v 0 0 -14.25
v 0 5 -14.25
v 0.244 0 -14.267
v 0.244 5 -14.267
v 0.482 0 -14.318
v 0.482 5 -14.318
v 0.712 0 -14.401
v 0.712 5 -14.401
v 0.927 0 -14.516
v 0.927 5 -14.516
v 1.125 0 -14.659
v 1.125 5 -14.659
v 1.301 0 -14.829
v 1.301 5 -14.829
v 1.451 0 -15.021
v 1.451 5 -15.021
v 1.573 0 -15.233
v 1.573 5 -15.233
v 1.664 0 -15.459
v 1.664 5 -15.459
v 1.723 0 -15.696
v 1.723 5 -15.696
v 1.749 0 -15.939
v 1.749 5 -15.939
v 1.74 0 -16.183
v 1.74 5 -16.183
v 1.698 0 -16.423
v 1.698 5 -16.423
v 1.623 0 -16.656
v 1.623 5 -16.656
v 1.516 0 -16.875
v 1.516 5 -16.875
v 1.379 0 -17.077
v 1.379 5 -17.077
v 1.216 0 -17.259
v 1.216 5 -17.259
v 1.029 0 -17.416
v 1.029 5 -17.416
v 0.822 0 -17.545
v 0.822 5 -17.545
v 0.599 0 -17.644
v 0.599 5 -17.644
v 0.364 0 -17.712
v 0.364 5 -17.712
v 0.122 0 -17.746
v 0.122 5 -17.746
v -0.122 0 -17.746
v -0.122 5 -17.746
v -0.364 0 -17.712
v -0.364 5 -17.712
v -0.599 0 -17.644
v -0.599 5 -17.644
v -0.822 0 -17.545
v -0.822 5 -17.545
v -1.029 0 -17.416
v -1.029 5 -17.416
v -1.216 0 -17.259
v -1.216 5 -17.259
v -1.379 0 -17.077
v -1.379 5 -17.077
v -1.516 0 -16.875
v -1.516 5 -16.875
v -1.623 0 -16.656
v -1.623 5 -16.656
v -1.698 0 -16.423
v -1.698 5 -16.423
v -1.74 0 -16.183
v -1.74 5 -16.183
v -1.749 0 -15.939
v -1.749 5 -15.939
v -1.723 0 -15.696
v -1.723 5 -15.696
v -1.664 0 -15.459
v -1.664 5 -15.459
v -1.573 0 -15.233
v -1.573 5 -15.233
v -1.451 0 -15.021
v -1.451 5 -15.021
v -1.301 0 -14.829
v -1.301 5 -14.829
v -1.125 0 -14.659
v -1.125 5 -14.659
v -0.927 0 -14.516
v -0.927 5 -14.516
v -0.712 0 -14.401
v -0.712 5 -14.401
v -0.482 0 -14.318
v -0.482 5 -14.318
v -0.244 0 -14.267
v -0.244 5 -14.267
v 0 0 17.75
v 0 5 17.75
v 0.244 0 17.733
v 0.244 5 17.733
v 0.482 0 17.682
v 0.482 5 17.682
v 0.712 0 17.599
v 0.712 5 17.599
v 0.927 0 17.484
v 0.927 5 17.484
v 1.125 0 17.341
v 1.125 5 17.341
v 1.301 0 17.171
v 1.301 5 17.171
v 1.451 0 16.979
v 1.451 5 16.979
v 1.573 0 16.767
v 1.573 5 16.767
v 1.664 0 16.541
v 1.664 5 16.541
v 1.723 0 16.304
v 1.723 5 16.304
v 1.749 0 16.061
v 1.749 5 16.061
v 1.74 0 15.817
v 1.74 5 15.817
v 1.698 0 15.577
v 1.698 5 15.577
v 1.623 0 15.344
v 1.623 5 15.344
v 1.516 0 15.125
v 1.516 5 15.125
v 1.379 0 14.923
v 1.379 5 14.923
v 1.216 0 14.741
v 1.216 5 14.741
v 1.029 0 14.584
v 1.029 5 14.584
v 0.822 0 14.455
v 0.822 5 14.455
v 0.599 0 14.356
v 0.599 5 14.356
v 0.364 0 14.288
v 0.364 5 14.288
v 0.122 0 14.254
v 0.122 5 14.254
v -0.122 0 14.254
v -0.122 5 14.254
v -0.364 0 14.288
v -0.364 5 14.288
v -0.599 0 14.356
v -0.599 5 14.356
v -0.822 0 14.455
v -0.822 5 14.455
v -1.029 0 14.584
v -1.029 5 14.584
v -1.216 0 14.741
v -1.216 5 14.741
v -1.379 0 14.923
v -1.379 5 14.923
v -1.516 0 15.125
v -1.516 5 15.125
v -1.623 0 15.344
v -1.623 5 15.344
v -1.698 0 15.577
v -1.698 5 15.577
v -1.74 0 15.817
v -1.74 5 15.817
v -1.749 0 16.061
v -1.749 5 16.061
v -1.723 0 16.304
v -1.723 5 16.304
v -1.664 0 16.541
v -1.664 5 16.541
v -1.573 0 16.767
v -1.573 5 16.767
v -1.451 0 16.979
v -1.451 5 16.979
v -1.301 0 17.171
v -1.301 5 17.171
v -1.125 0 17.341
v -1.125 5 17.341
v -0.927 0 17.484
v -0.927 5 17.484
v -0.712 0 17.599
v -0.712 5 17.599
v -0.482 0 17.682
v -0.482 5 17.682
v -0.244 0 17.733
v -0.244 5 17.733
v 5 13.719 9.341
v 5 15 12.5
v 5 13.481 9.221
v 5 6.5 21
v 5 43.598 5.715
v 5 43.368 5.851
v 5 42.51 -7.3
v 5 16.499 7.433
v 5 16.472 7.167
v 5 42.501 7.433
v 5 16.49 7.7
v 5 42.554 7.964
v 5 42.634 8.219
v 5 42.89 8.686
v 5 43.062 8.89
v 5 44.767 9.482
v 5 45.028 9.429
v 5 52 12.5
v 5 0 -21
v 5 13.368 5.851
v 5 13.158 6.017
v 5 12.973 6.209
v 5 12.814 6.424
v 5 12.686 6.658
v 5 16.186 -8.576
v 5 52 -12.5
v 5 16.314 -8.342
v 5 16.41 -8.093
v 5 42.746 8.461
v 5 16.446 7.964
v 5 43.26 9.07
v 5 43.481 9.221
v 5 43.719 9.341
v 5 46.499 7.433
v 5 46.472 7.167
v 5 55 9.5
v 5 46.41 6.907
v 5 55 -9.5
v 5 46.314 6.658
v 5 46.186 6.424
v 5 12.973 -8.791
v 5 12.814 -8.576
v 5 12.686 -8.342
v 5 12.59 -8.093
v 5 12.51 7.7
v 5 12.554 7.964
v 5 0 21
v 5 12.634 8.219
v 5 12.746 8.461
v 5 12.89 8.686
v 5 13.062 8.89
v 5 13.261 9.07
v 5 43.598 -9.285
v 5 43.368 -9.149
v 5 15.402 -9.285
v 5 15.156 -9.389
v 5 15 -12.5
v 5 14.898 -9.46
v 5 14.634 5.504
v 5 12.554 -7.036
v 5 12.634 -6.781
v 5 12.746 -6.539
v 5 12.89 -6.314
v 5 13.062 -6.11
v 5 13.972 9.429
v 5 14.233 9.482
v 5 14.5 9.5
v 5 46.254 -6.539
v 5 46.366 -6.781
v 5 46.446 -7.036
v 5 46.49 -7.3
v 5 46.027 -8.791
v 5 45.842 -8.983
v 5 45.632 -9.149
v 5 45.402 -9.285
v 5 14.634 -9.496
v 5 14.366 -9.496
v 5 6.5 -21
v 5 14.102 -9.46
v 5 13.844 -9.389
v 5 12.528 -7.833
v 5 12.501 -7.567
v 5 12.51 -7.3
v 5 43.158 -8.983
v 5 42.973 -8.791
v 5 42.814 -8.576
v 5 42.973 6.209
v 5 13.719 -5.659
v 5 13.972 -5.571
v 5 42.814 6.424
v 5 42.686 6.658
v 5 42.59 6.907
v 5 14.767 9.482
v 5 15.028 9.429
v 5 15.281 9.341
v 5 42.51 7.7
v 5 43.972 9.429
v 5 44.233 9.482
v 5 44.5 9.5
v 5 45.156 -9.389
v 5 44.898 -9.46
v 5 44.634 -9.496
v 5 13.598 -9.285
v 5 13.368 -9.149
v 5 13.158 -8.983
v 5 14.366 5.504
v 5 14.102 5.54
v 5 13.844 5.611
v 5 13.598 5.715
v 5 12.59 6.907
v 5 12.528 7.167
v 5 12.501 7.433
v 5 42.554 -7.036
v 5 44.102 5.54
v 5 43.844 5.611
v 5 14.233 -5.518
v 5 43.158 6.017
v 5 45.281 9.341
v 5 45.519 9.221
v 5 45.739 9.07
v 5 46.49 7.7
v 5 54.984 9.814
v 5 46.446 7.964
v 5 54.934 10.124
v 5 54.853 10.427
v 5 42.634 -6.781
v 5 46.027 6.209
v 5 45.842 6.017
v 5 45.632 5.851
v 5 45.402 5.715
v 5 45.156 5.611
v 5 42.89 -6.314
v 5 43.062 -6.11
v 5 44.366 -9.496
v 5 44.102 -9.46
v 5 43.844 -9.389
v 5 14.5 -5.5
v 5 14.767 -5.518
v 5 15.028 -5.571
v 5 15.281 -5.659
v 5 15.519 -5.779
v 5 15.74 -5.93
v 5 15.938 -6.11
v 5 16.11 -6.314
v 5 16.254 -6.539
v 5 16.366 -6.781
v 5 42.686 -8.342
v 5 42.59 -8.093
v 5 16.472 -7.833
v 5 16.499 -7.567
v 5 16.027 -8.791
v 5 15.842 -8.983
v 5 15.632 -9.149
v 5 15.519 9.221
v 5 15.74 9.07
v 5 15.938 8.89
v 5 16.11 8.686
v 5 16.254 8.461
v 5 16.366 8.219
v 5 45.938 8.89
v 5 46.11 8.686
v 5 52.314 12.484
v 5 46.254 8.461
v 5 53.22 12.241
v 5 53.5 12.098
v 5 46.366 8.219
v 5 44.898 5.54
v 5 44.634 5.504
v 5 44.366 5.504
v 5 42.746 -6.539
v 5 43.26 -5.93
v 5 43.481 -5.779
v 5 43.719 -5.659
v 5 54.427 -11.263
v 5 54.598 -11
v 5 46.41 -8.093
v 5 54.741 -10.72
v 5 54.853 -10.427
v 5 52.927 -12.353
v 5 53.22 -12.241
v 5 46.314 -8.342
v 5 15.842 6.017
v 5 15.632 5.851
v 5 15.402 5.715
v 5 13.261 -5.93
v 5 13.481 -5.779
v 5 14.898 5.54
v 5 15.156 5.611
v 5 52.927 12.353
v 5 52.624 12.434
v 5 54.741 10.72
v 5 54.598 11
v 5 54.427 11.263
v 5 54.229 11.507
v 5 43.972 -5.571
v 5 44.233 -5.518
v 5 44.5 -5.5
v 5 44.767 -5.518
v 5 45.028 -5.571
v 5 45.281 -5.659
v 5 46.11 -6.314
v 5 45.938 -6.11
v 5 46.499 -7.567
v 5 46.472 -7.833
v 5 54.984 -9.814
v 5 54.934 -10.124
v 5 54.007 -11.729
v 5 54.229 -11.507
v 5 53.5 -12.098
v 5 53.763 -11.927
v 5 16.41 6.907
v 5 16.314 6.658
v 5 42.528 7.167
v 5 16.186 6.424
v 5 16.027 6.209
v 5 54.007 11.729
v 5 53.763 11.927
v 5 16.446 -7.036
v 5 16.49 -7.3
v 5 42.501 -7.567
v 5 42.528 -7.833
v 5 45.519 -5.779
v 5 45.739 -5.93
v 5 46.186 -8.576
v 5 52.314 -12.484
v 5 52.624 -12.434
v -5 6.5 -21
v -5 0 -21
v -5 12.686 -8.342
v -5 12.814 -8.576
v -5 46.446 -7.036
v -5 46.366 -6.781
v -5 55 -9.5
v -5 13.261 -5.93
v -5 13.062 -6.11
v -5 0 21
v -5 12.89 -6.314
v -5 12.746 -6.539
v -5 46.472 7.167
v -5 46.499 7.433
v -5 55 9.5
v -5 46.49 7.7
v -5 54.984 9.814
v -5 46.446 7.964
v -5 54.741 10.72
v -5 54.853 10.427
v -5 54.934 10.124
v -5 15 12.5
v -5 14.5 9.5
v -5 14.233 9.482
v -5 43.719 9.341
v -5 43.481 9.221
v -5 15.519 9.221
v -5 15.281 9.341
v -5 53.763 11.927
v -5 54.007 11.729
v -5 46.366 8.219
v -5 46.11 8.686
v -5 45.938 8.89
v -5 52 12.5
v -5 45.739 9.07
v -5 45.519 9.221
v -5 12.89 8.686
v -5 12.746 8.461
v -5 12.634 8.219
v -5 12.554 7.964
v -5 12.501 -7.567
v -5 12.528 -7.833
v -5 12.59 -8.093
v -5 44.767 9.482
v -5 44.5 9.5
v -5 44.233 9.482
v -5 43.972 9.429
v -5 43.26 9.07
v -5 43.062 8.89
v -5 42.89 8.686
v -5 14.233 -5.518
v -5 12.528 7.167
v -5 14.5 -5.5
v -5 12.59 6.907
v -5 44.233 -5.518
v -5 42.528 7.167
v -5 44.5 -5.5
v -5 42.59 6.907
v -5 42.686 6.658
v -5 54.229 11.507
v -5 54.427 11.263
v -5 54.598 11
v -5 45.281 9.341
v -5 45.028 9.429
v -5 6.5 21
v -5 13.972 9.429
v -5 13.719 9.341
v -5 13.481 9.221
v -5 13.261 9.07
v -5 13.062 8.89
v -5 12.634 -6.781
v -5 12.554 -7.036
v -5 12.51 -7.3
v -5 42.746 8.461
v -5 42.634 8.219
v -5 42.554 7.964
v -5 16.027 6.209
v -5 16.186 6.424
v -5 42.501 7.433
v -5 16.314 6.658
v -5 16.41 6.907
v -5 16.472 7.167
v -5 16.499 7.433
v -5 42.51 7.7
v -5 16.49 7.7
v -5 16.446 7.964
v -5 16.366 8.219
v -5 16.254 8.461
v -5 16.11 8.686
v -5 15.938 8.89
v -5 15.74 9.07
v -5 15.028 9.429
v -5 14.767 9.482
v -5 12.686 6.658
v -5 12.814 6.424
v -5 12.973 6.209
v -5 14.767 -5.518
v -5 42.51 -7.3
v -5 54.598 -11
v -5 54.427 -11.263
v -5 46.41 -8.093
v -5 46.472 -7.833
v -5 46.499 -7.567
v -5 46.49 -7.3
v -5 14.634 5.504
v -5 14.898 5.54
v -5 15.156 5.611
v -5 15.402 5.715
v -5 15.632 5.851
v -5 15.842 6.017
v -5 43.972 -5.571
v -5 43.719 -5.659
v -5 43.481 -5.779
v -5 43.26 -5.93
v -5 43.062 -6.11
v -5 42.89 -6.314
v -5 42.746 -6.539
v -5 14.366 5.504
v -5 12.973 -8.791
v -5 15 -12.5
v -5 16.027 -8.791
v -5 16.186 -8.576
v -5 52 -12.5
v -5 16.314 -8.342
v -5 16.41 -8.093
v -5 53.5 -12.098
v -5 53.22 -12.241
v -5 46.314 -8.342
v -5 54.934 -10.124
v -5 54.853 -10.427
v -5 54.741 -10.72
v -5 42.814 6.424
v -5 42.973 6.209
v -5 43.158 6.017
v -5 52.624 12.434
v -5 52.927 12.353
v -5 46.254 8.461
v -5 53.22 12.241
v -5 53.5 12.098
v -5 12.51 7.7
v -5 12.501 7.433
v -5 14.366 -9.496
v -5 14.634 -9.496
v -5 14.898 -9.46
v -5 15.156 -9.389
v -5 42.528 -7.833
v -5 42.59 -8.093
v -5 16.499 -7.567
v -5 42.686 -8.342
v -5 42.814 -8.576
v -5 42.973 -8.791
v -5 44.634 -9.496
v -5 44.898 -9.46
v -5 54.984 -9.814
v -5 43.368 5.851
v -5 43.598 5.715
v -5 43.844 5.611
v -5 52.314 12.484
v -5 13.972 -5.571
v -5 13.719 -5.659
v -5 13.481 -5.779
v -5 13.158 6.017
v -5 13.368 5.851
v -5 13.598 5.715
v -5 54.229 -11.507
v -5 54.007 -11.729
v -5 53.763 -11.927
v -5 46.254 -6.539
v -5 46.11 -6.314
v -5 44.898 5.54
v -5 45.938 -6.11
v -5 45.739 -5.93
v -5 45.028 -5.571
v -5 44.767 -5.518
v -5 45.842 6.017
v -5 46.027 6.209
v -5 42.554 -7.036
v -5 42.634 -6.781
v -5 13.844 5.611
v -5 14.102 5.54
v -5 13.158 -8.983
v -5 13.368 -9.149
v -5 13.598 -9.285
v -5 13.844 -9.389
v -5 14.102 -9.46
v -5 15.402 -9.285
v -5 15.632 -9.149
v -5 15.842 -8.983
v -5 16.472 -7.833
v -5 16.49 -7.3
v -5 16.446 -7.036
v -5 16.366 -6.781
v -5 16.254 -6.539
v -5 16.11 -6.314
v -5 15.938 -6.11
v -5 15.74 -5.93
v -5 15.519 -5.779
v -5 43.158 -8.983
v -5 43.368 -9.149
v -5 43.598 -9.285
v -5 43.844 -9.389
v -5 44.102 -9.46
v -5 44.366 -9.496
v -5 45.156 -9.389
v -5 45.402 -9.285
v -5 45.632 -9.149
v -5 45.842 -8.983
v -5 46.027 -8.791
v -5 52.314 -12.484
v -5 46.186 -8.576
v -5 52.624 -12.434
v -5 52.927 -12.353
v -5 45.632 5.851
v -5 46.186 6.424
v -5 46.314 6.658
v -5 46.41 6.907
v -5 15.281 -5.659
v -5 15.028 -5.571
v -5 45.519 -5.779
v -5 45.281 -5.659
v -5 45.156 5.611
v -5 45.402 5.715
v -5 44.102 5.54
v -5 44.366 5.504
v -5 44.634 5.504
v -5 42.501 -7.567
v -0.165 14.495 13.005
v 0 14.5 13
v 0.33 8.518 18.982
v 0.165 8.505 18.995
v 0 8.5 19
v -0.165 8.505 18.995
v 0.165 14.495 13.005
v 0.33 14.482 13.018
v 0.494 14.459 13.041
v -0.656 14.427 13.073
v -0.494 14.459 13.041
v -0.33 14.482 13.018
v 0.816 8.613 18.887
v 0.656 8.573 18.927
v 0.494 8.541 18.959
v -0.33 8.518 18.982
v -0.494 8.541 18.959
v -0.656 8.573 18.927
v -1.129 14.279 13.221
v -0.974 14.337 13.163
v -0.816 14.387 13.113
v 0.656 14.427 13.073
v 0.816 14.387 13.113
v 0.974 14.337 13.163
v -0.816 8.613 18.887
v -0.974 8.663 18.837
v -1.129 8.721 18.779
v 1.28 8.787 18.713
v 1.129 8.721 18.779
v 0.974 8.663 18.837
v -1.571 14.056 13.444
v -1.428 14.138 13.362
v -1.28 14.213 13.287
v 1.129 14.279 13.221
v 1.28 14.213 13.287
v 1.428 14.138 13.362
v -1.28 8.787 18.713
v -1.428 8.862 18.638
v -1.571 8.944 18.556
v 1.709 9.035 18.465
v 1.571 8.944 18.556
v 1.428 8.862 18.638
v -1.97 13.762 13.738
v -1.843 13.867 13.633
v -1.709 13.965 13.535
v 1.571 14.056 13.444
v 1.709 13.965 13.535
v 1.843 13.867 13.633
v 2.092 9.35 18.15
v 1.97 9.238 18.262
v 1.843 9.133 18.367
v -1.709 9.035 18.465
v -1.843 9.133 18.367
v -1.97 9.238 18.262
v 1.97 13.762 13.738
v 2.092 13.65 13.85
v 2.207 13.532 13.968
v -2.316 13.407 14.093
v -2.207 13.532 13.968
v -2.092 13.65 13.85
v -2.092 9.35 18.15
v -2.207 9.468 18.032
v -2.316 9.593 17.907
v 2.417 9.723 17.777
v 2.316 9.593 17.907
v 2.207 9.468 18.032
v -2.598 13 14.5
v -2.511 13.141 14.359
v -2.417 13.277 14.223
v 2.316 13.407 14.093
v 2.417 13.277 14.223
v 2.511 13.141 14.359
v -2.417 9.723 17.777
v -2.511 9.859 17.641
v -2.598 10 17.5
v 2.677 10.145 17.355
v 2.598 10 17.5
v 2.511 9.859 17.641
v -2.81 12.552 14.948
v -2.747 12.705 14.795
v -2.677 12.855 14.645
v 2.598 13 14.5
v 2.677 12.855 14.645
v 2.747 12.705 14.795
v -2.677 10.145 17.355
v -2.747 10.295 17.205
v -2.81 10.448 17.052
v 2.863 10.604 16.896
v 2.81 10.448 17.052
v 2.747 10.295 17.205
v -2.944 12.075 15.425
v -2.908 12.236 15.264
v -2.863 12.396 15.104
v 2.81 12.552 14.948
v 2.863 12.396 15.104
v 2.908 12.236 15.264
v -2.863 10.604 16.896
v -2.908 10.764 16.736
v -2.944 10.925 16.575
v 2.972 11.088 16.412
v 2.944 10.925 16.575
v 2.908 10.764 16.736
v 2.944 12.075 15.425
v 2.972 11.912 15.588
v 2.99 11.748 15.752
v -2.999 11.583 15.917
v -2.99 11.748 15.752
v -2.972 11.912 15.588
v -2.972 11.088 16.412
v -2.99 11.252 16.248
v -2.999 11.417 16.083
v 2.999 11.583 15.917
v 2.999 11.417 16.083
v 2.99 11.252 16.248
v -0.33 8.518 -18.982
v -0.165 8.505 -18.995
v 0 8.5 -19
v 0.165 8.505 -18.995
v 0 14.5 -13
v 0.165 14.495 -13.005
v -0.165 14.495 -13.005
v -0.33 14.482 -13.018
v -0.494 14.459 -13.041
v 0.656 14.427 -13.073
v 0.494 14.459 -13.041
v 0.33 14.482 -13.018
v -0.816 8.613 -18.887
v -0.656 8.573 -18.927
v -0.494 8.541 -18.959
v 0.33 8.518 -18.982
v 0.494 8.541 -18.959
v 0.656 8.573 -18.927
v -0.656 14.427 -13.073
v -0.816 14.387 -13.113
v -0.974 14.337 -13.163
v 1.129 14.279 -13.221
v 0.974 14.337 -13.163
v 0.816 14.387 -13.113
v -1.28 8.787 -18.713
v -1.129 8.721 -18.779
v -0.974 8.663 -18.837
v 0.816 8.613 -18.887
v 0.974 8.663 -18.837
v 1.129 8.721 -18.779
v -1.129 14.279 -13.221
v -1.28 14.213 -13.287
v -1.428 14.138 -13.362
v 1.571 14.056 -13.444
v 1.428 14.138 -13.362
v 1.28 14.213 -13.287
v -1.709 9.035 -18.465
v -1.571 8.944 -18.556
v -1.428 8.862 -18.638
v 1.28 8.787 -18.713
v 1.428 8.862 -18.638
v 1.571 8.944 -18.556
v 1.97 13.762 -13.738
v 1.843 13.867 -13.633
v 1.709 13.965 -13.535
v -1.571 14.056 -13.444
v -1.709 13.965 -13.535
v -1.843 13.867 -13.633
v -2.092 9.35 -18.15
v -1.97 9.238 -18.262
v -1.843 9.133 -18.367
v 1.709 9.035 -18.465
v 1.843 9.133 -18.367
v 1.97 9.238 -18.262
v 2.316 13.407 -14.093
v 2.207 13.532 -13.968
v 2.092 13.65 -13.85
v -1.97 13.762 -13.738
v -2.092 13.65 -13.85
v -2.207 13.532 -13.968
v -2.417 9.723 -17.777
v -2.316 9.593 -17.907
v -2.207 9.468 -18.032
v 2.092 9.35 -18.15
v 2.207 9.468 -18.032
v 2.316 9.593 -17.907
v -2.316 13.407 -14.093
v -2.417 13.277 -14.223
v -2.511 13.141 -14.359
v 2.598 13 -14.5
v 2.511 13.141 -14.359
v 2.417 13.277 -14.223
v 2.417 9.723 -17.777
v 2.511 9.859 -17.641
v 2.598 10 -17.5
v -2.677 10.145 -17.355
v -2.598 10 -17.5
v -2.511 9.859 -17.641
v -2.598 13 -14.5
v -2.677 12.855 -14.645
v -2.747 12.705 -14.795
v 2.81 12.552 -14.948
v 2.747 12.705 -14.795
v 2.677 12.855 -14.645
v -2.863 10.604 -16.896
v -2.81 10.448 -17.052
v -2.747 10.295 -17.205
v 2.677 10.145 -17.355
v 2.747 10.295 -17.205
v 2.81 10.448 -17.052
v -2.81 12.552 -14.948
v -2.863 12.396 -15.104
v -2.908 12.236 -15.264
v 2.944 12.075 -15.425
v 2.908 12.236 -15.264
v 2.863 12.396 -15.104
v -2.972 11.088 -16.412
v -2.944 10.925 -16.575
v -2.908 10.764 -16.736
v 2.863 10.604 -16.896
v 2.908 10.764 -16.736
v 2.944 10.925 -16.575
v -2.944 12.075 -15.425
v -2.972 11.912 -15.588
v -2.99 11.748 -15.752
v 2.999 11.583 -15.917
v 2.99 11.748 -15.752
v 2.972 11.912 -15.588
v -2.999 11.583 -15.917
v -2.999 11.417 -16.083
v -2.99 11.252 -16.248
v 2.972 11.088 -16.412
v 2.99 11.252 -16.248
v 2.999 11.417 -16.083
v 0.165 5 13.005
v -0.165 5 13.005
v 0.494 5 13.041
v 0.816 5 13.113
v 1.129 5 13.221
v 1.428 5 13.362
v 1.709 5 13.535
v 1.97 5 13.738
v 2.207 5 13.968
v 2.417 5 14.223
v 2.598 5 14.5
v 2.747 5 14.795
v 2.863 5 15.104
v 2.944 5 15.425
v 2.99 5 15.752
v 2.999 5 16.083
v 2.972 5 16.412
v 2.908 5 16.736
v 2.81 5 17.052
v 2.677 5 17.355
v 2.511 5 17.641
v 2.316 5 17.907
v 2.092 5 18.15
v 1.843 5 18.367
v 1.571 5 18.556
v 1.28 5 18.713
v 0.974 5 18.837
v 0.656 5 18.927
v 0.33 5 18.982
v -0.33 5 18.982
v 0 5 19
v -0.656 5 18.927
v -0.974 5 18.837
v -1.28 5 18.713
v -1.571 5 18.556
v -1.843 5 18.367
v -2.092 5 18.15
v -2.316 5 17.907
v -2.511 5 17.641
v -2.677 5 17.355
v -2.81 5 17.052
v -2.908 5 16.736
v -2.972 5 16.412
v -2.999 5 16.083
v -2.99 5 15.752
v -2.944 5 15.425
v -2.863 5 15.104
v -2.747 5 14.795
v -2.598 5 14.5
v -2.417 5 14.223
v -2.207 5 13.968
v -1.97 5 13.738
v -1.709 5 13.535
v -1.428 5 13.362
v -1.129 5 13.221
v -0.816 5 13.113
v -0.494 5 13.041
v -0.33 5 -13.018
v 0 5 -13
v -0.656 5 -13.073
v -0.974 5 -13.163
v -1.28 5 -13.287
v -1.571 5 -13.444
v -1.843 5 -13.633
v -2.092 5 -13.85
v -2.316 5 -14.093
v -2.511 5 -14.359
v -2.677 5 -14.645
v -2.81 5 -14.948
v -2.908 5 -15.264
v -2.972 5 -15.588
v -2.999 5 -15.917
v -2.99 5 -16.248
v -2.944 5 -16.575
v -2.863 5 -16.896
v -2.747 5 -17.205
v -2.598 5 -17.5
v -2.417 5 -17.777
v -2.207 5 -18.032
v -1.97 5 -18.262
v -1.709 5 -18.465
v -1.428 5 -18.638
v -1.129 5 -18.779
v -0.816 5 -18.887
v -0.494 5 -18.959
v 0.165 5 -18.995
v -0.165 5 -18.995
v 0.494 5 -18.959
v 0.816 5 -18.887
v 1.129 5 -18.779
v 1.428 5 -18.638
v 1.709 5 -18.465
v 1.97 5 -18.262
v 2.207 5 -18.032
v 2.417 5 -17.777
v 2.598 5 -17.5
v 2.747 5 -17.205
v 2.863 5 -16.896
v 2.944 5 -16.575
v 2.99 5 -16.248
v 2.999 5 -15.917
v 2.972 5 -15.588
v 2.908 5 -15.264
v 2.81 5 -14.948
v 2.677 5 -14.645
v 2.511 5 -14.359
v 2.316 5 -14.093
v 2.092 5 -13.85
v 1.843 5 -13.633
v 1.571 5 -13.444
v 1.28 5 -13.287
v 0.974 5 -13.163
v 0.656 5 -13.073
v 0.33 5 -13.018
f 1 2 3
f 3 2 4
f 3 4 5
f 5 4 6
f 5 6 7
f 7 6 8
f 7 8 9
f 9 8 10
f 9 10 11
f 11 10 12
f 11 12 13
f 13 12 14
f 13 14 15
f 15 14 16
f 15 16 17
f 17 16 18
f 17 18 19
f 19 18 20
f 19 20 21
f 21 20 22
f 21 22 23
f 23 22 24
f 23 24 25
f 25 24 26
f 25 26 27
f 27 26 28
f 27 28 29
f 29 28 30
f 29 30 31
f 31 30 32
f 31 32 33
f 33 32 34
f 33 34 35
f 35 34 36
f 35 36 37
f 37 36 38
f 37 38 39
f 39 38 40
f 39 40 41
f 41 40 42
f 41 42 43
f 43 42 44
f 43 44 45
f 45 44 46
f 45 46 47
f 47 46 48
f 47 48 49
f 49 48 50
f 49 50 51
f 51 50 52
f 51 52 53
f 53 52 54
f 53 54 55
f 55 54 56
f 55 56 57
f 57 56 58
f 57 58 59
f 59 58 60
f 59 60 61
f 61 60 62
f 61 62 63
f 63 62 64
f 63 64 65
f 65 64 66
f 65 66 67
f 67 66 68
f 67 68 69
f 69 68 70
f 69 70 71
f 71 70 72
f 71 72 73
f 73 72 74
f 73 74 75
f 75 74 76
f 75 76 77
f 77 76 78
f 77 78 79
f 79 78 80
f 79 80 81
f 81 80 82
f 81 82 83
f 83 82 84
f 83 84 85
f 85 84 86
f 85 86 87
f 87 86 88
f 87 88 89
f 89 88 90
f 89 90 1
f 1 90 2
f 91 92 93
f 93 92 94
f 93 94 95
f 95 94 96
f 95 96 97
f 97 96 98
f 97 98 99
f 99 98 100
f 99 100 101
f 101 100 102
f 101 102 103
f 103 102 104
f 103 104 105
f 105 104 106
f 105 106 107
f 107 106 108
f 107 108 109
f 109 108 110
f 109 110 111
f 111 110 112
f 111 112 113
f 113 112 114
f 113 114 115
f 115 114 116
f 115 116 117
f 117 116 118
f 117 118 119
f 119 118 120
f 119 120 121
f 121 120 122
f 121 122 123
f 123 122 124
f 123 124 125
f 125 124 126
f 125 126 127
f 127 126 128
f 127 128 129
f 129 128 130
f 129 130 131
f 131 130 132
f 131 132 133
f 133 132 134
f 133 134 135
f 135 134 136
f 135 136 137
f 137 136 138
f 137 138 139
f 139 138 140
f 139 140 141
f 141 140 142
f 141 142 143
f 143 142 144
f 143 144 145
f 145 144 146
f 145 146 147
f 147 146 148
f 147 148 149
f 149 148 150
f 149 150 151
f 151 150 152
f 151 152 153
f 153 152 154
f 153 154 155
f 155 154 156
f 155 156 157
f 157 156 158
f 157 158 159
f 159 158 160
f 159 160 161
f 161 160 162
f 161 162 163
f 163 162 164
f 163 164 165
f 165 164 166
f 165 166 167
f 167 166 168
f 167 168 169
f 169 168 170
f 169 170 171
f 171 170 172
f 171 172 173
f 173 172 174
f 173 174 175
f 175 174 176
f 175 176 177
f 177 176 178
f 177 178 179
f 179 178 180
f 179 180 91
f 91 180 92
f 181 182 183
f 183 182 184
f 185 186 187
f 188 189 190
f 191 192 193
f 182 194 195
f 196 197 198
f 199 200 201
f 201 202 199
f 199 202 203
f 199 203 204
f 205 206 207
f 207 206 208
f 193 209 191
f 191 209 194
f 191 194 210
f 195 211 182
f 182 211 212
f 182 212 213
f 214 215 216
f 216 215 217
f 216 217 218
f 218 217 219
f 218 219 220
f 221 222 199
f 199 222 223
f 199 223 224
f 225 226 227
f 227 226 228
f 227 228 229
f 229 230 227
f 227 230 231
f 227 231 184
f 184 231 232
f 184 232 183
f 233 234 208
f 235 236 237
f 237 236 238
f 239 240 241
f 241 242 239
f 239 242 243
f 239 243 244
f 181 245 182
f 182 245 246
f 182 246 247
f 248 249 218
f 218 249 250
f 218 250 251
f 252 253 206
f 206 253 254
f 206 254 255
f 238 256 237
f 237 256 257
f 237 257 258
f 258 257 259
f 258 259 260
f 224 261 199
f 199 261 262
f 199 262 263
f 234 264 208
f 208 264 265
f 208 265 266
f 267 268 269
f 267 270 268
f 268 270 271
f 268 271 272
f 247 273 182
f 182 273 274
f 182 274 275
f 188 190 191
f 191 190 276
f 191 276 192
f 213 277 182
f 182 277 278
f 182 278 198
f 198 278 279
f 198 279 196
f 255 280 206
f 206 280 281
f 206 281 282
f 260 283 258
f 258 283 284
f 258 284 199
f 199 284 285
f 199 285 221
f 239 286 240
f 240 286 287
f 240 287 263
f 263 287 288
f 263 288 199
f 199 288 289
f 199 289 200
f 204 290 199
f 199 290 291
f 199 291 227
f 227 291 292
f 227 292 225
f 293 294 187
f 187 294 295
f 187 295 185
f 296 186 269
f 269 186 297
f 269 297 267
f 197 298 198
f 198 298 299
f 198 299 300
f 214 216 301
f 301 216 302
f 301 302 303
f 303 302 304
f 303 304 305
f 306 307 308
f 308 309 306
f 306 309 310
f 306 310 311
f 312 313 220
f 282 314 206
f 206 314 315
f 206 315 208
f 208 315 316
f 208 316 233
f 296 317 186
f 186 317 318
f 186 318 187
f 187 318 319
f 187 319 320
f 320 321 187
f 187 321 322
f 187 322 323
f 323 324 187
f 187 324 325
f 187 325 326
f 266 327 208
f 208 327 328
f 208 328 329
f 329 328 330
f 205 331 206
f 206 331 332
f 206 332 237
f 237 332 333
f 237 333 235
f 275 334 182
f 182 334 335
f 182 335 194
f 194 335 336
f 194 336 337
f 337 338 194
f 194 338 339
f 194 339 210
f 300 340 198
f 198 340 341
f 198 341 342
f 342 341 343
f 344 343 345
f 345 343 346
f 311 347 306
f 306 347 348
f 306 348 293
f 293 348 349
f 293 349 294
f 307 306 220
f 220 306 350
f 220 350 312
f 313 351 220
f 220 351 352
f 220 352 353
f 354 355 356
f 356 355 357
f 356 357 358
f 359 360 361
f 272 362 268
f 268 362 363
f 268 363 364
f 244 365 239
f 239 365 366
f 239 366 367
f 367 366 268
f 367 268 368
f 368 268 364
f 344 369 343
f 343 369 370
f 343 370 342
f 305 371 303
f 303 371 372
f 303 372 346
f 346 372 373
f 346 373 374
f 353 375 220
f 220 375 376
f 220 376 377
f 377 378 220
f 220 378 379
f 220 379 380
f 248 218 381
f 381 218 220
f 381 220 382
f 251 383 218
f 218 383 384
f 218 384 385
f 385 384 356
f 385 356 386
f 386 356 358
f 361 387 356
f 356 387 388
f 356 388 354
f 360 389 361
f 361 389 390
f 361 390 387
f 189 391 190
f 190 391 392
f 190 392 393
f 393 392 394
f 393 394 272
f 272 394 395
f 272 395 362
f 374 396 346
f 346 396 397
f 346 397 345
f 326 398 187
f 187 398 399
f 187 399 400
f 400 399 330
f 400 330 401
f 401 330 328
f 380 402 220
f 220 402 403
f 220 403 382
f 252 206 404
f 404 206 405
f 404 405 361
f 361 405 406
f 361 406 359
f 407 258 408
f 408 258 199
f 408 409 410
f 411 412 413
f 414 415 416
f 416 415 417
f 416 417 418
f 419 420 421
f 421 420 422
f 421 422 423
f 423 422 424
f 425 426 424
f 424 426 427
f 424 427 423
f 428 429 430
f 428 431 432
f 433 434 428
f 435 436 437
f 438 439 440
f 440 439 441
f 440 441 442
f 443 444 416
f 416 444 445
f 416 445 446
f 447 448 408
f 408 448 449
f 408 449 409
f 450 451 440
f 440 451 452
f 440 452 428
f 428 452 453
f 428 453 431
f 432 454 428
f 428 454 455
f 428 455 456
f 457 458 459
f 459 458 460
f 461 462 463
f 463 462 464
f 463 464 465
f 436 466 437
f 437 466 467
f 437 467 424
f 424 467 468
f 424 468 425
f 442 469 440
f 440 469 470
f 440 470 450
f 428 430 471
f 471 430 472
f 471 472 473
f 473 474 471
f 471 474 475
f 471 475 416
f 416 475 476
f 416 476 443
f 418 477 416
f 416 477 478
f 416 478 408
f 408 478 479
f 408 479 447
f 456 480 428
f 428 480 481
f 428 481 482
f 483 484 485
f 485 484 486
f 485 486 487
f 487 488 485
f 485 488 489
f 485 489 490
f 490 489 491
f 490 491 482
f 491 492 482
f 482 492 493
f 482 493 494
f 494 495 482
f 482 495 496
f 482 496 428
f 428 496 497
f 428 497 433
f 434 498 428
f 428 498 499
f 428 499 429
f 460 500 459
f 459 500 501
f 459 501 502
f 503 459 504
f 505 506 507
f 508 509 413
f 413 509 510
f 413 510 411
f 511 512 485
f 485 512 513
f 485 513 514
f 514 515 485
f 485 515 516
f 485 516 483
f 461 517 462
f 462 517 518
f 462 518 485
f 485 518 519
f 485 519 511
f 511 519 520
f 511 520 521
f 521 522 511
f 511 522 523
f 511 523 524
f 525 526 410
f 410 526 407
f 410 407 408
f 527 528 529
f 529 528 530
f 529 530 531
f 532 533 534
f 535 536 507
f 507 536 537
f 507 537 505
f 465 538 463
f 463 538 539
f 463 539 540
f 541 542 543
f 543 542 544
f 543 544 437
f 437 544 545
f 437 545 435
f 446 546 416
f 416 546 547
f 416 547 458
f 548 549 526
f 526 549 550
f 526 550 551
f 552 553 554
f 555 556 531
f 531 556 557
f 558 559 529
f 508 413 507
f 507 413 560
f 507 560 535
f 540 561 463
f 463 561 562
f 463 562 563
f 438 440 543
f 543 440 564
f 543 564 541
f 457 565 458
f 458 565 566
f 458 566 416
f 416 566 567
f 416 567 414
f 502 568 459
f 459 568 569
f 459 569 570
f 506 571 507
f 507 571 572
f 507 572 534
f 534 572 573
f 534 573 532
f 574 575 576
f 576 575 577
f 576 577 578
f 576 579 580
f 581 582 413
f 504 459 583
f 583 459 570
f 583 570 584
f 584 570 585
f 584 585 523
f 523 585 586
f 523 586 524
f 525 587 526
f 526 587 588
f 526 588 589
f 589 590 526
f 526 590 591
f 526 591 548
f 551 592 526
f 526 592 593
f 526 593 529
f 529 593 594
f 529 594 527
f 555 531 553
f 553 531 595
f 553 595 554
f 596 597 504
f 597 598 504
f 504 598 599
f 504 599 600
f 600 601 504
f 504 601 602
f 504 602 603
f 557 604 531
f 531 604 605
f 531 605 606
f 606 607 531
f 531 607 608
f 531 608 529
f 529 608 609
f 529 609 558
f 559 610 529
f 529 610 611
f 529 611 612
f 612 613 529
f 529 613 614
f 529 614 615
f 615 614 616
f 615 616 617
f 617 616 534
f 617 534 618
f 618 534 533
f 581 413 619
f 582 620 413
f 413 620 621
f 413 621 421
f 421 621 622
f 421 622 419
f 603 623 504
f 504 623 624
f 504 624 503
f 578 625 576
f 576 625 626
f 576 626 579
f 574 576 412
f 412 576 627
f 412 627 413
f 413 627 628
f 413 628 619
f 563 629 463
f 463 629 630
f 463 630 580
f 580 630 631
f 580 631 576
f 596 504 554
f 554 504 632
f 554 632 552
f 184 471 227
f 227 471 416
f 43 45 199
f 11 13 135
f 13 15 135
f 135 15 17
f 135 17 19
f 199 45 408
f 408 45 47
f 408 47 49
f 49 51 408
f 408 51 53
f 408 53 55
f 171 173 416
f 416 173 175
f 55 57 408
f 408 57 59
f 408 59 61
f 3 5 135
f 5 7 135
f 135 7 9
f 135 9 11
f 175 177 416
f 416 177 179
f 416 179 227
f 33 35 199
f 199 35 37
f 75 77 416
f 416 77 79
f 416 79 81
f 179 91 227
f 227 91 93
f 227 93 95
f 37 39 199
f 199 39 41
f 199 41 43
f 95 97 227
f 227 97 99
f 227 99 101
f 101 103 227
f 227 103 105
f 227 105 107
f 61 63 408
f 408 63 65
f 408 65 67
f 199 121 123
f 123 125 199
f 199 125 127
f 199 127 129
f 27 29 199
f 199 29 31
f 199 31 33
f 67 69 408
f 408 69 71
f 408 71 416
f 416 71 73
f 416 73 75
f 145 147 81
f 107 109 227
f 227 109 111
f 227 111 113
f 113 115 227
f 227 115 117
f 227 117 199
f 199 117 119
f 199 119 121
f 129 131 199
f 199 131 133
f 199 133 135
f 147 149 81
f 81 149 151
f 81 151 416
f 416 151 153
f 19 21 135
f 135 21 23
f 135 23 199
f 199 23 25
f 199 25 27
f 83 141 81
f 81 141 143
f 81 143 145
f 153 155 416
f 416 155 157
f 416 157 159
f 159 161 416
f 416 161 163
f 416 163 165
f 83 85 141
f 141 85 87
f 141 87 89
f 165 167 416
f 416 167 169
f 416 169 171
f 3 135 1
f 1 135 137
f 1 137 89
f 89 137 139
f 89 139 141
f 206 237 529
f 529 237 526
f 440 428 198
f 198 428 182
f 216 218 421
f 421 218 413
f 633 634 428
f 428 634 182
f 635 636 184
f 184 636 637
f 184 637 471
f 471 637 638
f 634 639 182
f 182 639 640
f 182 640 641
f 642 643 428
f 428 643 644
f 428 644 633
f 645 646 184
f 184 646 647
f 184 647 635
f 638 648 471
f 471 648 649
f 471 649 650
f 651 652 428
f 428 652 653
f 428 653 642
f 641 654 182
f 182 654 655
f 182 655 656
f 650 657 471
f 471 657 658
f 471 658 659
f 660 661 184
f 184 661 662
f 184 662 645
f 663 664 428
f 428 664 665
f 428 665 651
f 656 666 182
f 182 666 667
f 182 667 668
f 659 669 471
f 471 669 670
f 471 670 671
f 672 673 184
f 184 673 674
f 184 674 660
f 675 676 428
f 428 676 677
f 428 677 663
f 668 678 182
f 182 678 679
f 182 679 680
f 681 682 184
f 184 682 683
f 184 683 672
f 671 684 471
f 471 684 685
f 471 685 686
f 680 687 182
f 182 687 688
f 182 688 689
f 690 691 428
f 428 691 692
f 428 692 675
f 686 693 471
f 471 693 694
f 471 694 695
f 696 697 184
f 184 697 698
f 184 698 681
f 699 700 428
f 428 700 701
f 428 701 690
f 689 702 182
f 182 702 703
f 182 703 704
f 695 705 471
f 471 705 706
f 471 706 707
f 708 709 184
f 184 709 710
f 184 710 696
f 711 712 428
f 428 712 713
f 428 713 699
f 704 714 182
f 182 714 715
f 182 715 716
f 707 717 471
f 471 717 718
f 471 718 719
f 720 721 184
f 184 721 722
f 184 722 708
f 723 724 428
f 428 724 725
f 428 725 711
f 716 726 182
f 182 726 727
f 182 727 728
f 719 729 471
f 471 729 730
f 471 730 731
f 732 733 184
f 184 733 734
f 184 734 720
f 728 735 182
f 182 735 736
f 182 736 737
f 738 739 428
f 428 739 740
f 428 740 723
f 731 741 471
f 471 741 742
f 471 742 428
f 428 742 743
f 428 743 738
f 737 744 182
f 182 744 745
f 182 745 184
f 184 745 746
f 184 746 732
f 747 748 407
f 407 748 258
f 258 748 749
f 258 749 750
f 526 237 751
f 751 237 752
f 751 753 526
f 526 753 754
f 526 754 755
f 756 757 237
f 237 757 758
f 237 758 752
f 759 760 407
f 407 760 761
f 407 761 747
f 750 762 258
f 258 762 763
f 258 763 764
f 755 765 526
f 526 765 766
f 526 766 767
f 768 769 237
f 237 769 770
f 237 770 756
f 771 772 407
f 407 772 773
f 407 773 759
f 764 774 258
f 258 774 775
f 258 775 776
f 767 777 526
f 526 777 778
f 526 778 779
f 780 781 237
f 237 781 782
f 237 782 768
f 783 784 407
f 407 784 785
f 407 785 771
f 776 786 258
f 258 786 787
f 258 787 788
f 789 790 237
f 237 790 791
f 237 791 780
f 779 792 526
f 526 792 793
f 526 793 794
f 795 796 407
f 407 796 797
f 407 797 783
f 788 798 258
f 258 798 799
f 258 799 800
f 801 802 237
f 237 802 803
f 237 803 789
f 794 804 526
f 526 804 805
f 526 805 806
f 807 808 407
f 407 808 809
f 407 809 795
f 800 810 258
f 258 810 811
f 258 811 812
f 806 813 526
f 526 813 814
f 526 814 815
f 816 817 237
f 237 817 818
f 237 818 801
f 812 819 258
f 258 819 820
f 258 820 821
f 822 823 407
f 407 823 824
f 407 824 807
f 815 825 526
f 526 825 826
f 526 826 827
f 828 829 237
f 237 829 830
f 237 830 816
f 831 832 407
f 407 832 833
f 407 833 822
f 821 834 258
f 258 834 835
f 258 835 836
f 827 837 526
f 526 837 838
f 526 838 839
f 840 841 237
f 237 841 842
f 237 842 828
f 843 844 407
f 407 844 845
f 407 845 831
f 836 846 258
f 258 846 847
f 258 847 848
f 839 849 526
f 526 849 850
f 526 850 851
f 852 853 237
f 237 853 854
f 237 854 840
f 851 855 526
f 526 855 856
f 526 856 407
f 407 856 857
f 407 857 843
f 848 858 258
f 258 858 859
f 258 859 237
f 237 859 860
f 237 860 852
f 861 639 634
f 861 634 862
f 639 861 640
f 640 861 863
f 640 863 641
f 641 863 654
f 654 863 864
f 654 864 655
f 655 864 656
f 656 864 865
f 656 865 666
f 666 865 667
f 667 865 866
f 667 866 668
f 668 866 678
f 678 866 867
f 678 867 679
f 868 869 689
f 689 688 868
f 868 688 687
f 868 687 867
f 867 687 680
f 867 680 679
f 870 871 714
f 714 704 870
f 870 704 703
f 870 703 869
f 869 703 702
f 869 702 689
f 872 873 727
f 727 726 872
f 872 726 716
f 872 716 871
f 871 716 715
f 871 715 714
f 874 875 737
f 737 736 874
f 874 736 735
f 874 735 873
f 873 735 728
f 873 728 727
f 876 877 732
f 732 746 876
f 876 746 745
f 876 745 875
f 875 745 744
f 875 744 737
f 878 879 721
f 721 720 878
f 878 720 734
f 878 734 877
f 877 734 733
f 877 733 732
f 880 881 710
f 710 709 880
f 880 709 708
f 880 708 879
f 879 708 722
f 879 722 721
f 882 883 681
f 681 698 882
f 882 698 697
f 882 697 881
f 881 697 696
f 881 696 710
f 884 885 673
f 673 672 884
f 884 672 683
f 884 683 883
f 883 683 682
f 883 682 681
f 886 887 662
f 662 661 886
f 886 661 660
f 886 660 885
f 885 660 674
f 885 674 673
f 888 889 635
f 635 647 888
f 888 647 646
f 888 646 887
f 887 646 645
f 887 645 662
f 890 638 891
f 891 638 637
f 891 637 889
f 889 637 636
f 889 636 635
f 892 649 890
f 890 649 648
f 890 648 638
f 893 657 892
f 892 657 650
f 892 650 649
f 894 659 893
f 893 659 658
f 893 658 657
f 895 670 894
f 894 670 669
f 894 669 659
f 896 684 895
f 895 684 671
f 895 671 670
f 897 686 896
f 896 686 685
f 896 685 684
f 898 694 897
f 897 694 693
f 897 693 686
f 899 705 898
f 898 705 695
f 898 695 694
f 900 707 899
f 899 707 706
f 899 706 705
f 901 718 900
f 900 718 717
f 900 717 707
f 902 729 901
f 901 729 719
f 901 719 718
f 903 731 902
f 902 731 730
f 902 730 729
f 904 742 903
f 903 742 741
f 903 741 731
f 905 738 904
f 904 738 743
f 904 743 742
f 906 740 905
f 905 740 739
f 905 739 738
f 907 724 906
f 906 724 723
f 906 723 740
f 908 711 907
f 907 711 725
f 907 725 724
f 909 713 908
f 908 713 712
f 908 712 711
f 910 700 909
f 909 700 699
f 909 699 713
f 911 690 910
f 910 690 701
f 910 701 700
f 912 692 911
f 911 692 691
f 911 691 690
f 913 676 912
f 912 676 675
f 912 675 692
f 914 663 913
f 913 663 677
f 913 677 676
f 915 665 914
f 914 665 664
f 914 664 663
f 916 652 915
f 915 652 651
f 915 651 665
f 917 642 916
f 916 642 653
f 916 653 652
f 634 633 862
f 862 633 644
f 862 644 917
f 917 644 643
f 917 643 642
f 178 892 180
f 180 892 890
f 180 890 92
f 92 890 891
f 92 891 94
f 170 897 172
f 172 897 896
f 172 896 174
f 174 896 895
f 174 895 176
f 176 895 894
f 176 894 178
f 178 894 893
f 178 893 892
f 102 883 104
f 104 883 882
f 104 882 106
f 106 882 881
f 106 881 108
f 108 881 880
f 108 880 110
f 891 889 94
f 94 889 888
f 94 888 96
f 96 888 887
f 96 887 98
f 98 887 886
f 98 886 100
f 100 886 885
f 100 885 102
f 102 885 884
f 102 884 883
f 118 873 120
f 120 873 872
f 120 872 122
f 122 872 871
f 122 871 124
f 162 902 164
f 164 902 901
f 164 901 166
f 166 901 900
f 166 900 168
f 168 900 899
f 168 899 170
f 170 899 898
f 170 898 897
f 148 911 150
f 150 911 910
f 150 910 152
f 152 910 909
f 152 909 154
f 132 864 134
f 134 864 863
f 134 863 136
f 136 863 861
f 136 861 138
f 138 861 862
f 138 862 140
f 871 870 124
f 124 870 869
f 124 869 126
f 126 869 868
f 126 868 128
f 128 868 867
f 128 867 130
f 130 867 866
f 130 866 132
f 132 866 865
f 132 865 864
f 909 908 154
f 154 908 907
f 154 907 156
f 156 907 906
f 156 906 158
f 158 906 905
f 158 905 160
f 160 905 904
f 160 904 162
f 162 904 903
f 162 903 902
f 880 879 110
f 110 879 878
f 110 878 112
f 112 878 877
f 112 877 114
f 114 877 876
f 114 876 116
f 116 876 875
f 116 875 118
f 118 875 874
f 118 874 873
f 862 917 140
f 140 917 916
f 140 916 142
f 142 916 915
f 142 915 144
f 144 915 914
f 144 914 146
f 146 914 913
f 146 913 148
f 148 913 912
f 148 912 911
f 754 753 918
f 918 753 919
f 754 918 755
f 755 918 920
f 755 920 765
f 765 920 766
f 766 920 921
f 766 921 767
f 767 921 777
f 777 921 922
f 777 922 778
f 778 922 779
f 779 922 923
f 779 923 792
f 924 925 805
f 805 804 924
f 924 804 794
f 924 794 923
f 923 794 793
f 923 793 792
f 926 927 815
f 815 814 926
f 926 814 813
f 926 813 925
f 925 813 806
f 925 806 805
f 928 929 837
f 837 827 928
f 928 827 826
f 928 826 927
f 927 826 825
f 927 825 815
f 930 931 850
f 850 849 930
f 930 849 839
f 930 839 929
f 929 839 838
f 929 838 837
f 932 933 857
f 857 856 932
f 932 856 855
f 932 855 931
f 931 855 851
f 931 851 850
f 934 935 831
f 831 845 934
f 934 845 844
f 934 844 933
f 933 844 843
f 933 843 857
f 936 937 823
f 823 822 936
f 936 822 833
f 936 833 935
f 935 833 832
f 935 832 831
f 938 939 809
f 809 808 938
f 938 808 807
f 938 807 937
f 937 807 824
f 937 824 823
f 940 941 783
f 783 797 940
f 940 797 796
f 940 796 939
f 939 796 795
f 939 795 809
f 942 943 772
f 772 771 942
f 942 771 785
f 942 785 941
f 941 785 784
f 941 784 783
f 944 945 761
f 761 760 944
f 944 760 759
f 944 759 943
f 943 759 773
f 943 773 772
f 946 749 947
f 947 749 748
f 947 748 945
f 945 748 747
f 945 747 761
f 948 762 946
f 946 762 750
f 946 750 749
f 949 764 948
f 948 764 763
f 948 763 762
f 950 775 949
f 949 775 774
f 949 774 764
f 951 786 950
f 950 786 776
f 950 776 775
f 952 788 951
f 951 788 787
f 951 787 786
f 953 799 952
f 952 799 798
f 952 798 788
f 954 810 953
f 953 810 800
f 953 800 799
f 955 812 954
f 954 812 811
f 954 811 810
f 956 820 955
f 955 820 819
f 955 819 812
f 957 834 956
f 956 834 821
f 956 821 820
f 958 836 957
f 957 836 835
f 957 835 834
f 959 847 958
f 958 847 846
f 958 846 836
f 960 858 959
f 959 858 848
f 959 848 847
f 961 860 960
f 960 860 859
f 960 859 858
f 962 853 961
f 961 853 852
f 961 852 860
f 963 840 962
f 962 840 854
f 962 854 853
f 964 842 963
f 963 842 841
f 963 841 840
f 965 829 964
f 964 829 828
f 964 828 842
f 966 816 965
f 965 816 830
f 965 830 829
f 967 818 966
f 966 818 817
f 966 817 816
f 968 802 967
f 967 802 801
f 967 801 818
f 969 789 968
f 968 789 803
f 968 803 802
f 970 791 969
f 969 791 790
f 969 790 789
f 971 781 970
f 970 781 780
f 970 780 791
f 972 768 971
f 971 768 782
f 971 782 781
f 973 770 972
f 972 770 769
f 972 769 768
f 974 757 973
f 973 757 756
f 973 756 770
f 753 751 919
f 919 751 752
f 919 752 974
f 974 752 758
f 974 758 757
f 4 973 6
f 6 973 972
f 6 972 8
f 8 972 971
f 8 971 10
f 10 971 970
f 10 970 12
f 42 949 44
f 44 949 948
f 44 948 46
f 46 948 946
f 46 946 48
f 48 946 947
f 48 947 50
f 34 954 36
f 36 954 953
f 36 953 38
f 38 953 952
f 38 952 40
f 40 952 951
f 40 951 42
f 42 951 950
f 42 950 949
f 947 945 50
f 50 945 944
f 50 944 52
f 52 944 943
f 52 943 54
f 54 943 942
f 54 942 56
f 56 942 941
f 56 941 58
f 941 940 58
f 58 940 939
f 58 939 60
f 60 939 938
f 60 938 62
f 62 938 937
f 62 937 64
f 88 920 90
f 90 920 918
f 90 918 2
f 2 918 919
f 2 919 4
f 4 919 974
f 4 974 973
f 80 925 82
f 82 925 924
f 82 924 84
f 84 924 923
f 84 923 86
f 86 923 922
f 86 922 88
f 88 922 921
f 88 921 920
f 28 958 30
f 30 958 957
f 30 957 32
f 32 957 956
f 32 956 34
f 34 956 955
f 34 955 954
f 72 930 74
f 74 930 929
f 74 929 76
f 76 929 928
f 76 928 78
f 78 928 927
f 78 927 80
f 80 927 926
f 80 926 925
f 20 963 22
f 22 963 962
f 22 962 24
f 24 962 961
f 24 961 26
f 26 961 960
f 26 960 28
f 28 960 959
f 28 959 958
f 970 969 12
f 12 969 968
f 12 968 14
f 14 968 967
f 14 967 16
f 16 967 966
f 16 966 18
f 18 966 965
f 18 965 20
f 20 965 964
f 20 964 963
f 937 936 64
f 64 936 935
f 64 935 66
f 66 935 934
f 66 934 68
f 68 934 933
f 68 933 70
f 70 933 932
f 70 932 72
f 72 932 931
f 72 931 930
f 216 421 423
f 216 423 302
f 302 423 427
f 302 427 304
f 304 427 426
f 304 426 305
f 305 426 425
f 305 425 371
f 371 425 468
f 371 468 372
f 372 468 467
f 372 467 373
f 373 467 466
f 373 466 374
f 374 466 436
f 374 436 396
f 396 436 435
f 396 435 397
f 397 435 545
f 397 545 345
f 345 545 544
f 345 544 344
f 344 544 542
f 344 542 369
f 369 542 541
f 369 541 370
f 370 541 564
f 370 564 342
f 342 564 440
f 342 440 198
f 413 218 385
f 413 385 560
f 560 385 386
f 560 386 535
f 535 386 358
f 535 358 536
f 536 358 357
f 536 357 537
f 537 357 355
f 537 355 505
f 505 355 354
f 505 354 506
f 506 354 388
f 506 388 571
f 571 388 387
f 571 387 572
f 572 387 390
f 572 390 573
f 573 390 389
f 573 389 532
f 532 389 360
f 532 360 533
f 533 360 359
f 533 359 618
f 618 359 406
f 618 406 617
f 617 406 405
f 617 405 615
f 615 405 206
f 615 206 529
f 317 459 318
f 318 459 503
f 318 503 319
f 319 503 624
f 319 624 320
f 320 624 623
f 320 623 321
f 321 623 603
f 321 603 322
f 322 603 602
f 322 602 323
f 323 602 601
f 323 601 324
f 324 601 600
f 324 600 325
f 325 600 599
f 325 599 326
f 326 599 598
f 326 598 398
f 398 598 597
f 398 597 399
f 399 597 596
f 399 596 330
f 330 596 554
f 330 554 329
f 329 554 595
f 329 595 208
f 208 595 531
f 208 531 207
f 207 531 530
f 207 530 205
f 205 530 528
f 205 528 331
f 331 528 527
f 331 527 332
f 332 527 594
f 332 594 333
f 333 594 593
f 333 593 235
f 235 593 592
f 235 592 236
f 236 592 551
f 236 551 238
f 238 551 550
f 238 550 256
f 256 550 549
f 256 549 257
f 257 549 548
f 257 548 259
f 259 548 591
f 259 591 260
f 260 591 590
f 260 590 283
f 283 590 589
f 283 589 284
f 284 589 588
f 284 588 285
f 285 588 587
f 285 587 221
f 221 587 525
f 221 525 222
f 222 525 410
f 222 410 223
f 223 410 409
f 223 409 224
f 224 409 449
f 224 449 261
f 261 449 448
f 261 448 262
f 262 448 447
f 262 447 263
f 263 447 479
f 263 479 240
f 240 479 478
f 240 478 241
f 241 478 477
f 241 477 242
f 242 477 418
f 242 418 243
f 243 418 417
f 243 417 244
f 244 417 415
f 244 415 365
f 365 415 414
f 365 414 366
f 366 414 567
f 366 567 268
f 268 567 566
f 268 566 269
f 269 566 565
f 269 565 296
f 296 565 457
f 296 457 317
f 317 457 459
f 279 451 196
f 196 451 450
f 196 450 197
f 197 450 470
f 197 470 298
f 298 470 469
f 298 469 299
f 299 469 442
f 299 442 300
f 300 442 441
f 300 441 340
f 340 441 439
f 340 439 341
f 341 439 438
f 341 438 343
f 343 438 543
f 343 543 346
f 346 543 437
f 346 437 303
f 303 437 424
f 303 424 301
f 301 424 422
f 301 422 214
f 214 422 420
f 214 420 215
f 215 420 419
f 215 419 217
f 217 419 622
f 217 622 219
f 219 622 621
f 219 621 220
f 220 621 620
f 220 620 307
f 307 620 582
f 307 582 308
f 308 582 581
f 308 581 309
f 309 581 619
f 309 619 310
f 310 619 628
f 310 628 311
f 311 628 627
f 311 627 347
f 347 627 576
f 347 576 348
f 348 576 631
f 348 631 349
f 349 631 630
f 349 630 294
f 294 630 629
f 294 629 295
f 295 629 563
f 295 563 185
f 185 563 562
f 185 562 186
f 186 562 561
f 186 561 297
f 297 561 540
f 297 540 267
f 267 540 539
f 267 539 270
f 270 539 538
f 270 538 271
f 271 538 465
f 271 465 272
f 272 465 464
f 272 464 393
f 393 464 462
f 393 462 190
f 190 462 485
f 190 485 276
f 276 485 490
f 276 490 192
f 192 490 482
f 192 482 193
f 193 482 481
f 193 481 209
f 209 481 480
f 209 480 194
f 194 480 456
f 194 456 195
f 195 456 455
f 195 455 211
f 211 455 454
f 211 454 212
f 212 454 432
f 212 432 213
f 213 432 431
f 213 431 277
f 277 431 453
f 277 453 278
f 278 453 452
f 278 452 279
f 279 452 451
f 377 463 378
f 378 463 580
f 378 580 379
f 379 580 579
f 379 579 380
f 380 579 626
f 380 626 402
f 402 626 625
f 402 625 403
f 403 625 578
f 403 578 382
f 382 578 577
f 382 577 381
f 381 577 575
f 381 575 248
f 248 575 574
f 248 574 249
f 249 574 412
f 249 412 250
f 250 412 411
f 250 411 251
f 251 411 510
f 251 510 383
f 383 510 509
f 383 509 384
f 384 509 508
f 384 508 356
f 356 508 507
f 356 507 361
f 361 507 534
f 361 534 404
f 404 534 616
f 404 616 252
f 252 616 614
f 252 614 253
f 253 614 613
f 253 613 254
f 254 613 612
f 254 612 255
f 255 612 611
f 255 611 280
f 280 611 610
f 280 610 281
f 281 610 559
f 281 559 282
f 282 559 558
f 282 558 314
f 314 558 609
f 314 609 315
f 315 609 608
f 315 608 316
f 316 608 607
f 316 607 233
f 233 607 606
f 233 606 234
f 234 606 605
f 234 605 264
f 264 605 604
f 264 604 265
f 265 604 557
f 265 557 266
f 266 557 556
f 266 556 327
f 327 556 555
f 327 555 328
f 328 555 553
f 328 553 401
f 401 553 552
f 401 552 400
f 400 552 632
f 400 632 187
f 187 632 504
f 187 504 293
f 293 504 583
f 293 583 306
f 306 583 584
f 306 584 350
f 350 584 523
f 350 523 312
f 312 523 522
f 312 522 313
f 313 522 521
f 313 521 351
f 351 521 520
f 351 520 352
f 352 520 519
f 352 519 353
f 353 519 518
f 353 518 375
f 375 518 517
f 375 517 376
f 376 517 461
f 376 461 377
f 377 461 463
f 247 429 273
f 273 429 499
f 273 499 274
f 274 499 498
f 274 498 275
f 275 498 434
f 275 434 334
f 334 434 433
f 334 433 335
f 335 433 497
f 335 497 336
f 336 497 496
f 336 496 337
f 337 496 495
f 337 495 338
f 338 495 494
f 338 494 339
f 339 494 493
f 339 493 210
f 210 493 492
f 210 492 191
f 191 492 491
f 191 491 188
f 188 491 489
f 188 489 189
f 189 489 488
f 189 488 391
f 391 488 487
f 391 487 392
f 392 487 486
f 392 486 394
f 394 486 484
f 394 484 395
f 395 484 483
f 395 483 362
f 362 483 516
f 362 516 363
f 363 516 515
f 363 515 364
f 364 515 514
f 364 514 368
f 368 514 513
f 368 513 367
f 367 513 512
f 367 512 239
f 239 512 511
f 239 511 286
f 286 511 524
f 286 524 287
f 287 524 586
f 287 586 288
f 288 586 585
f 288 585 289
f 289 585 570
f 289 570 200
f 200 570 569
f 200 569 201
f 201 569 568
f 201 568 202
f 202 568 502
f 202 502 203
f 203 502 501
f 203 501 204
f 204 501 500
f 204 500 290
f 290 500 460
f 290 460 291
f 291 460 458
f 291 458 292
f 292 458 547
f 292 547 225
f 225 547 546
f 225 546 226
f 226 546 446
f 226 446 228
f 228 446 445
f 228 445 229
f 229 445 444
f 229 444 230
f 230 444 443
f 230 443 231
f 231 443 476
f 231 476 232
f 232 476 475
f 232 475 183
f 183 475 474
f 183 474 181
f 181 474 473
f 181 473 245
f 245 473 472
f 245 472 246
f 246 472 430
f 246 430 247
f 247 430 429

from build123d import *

# Parameters (mm, degrees)
SKETCH1_W           = 10
SKETCH1_H           = 42
BOSS_EXTRUDE1_DEPTH = 3
SKETCH7_W           = 10
SKETCH7_H           = 25
BOSS_EXTRUDE4_DEPTH = 52
CHAMFER2_SIZE       = 12
SKETCH8_R           = 1.75
CUT_EXTRUDE1_DEPTH  = 60.084684987
SKETCH9_R           = 3
CUT_EXTRUDE2_DEPTH  = 50
FILLET1_R           = 3
SKETCH10_R          = 2
CUT_EXTRUDE3_DEPTH  = 60.715994507


with BuildPart() as part:
    # Sketch1 → Boss-Extrude1 (new body)
    with BuildSketch(Plane(origin=(0, 0, 0), x_dir=(1, 0, 0), z_dir=(0, 1, 0))):
        Rectangle(SKETCH1_W, SKETCH1_H)
    extrude(amount=BOSS_EXTRUDE1_DEPTH)

    # Sketch7 → Boss-Extrude4 (add)
    with BuildSketch(Plane(origin=(0, 3, 0), x_dir=(1, 0, 0), z_dir=(0, 1, 0))):
        Rectangle(SKETCH7_W, SKETCH7_H)
    extrude(amount=BOSS_EXTRUDE4_DEPTH)

    # Chamfer2
    # the kernel refuses this chamfer: 12 mm, written as the material it adds along each edge
    with BuildSketch(Plane(origin=(5, 3, 12.5), x_dir=(0, -0.02749587661058638, 0.9996219169112968), z_dir=(-1, 0, 0))) as chamfer2_piece_1_section:
        Polygon((CHAMFER2_SIZE * 0.999621916911, CHAMFER2_SIZE * 0.0274958766106), (-CHAMFER2_SIZE * 0.0274958766106, CHAMFER2_SIZE * 0.999621916911), (0, 0), align=None)
    chamfer2_piece_1 = extrude(amount=10, mode=Mode.PRIVATE)
    chamfer2_piece_1 = split(chamfer2_piece_1, bisect_by=Plane(origin=(0, 7.292994705, 21), z_dir=(0, 0, -1)), keep=Keep.TOP, mode=Mode.PRIVATE)
    add(chamfer2_piece_1)
    with BuildSketch(Plane(origin=(-5, 3, -12.5), x_dir=(0, -0.02749587661058638, -0.9996219169112968), z_dir=(1, 0, 0))) as chamfer2_piece_2_section:
        Polygon((CHAMFER2_SIZE * 0.999621916911, CHAMFER2_SIZE * 0.0274958766106), (-CHAMFER2_SIZE * 0.0274958766106, CHAMFER2_SIZE * 0.999621916911), (0, 0), align=None)
    chamfer2_piece_2 = extrude(amount=10, mode=Mode.PRIVATE)
    chamfer2_piece_2 = split(chamfer2_piece_2, bisect_by=Plane(origin=(0, 7.292994705, -21), z_dir=(0, 0, 1)), keep=Keep.TOP, mode=Mode.PRIVATE)
    add(chamfer2_piece_2)

    # Sketch8 → Cut-Extrude1 (cut, through all)
    with BuildSketch(Plane(origin=(0, 55, 0), x_dir=(1, 0, 0), z_dir=(0, 1, 0))):
        with Locations(Location((0, 16, 0), (0, 0, 270))):
            Circle(SKETCH8_R)
        with Locations(Location((0, -16, 0), (0, 0, 270))):
            Circle(SKETCH8_R)
    extrude(amount=-CUT_EXTRUDE1_DEPTH, mode=Mode.SUBTRACT)

    # Sketch9 → Cut-Extrude2 (cut)
    with BuildSketch(Plane(origin=(0, 55, 0), x_dir=(1, 0, 0), z_dir=(0, 1, 0))):
        with Locations(Location((0, 16, 0), (0, 0, 270))):
            Circle(SKETCH9_R)
        with Locations(Location((0, -16, 0), (0, 0, 270))):
            Circle(SKETCH9_R)
    extrude(amount=-CUT_EXTRUDE2_DEPTH, mode=Mode.SUBTRACT)

    # Fillet1
    fillet1_edges = [part.edges().sort_by_distance(p)[0] for p in [
        (0, 55, -12.5),
        (0, 55, 12.5),
    ]]
    fillet(fillet1_edges, radius=FILLET1_R)

    # Sketch10 → Cut-Extrude3 (cut, through all)
    with BuildSketch(Plane.ZY.offset(5)):
        with Locations((-7.5, 14.5)):
            Circle(SKETCH10_R)
        with Locations((7.5, 14.5)):
            Circle(SKETCH10_R)
        with Locations((-7.5, 44.5)):
            Circle(SKETCH10_R)
        with Locations((7.5, 44.5)):
            Circle(SKETCH10_R)
    extrude(amount=-CUT_EXTRUDE3_DEPTH, mode=Mode.SUBTRACT)


solid = part.part
